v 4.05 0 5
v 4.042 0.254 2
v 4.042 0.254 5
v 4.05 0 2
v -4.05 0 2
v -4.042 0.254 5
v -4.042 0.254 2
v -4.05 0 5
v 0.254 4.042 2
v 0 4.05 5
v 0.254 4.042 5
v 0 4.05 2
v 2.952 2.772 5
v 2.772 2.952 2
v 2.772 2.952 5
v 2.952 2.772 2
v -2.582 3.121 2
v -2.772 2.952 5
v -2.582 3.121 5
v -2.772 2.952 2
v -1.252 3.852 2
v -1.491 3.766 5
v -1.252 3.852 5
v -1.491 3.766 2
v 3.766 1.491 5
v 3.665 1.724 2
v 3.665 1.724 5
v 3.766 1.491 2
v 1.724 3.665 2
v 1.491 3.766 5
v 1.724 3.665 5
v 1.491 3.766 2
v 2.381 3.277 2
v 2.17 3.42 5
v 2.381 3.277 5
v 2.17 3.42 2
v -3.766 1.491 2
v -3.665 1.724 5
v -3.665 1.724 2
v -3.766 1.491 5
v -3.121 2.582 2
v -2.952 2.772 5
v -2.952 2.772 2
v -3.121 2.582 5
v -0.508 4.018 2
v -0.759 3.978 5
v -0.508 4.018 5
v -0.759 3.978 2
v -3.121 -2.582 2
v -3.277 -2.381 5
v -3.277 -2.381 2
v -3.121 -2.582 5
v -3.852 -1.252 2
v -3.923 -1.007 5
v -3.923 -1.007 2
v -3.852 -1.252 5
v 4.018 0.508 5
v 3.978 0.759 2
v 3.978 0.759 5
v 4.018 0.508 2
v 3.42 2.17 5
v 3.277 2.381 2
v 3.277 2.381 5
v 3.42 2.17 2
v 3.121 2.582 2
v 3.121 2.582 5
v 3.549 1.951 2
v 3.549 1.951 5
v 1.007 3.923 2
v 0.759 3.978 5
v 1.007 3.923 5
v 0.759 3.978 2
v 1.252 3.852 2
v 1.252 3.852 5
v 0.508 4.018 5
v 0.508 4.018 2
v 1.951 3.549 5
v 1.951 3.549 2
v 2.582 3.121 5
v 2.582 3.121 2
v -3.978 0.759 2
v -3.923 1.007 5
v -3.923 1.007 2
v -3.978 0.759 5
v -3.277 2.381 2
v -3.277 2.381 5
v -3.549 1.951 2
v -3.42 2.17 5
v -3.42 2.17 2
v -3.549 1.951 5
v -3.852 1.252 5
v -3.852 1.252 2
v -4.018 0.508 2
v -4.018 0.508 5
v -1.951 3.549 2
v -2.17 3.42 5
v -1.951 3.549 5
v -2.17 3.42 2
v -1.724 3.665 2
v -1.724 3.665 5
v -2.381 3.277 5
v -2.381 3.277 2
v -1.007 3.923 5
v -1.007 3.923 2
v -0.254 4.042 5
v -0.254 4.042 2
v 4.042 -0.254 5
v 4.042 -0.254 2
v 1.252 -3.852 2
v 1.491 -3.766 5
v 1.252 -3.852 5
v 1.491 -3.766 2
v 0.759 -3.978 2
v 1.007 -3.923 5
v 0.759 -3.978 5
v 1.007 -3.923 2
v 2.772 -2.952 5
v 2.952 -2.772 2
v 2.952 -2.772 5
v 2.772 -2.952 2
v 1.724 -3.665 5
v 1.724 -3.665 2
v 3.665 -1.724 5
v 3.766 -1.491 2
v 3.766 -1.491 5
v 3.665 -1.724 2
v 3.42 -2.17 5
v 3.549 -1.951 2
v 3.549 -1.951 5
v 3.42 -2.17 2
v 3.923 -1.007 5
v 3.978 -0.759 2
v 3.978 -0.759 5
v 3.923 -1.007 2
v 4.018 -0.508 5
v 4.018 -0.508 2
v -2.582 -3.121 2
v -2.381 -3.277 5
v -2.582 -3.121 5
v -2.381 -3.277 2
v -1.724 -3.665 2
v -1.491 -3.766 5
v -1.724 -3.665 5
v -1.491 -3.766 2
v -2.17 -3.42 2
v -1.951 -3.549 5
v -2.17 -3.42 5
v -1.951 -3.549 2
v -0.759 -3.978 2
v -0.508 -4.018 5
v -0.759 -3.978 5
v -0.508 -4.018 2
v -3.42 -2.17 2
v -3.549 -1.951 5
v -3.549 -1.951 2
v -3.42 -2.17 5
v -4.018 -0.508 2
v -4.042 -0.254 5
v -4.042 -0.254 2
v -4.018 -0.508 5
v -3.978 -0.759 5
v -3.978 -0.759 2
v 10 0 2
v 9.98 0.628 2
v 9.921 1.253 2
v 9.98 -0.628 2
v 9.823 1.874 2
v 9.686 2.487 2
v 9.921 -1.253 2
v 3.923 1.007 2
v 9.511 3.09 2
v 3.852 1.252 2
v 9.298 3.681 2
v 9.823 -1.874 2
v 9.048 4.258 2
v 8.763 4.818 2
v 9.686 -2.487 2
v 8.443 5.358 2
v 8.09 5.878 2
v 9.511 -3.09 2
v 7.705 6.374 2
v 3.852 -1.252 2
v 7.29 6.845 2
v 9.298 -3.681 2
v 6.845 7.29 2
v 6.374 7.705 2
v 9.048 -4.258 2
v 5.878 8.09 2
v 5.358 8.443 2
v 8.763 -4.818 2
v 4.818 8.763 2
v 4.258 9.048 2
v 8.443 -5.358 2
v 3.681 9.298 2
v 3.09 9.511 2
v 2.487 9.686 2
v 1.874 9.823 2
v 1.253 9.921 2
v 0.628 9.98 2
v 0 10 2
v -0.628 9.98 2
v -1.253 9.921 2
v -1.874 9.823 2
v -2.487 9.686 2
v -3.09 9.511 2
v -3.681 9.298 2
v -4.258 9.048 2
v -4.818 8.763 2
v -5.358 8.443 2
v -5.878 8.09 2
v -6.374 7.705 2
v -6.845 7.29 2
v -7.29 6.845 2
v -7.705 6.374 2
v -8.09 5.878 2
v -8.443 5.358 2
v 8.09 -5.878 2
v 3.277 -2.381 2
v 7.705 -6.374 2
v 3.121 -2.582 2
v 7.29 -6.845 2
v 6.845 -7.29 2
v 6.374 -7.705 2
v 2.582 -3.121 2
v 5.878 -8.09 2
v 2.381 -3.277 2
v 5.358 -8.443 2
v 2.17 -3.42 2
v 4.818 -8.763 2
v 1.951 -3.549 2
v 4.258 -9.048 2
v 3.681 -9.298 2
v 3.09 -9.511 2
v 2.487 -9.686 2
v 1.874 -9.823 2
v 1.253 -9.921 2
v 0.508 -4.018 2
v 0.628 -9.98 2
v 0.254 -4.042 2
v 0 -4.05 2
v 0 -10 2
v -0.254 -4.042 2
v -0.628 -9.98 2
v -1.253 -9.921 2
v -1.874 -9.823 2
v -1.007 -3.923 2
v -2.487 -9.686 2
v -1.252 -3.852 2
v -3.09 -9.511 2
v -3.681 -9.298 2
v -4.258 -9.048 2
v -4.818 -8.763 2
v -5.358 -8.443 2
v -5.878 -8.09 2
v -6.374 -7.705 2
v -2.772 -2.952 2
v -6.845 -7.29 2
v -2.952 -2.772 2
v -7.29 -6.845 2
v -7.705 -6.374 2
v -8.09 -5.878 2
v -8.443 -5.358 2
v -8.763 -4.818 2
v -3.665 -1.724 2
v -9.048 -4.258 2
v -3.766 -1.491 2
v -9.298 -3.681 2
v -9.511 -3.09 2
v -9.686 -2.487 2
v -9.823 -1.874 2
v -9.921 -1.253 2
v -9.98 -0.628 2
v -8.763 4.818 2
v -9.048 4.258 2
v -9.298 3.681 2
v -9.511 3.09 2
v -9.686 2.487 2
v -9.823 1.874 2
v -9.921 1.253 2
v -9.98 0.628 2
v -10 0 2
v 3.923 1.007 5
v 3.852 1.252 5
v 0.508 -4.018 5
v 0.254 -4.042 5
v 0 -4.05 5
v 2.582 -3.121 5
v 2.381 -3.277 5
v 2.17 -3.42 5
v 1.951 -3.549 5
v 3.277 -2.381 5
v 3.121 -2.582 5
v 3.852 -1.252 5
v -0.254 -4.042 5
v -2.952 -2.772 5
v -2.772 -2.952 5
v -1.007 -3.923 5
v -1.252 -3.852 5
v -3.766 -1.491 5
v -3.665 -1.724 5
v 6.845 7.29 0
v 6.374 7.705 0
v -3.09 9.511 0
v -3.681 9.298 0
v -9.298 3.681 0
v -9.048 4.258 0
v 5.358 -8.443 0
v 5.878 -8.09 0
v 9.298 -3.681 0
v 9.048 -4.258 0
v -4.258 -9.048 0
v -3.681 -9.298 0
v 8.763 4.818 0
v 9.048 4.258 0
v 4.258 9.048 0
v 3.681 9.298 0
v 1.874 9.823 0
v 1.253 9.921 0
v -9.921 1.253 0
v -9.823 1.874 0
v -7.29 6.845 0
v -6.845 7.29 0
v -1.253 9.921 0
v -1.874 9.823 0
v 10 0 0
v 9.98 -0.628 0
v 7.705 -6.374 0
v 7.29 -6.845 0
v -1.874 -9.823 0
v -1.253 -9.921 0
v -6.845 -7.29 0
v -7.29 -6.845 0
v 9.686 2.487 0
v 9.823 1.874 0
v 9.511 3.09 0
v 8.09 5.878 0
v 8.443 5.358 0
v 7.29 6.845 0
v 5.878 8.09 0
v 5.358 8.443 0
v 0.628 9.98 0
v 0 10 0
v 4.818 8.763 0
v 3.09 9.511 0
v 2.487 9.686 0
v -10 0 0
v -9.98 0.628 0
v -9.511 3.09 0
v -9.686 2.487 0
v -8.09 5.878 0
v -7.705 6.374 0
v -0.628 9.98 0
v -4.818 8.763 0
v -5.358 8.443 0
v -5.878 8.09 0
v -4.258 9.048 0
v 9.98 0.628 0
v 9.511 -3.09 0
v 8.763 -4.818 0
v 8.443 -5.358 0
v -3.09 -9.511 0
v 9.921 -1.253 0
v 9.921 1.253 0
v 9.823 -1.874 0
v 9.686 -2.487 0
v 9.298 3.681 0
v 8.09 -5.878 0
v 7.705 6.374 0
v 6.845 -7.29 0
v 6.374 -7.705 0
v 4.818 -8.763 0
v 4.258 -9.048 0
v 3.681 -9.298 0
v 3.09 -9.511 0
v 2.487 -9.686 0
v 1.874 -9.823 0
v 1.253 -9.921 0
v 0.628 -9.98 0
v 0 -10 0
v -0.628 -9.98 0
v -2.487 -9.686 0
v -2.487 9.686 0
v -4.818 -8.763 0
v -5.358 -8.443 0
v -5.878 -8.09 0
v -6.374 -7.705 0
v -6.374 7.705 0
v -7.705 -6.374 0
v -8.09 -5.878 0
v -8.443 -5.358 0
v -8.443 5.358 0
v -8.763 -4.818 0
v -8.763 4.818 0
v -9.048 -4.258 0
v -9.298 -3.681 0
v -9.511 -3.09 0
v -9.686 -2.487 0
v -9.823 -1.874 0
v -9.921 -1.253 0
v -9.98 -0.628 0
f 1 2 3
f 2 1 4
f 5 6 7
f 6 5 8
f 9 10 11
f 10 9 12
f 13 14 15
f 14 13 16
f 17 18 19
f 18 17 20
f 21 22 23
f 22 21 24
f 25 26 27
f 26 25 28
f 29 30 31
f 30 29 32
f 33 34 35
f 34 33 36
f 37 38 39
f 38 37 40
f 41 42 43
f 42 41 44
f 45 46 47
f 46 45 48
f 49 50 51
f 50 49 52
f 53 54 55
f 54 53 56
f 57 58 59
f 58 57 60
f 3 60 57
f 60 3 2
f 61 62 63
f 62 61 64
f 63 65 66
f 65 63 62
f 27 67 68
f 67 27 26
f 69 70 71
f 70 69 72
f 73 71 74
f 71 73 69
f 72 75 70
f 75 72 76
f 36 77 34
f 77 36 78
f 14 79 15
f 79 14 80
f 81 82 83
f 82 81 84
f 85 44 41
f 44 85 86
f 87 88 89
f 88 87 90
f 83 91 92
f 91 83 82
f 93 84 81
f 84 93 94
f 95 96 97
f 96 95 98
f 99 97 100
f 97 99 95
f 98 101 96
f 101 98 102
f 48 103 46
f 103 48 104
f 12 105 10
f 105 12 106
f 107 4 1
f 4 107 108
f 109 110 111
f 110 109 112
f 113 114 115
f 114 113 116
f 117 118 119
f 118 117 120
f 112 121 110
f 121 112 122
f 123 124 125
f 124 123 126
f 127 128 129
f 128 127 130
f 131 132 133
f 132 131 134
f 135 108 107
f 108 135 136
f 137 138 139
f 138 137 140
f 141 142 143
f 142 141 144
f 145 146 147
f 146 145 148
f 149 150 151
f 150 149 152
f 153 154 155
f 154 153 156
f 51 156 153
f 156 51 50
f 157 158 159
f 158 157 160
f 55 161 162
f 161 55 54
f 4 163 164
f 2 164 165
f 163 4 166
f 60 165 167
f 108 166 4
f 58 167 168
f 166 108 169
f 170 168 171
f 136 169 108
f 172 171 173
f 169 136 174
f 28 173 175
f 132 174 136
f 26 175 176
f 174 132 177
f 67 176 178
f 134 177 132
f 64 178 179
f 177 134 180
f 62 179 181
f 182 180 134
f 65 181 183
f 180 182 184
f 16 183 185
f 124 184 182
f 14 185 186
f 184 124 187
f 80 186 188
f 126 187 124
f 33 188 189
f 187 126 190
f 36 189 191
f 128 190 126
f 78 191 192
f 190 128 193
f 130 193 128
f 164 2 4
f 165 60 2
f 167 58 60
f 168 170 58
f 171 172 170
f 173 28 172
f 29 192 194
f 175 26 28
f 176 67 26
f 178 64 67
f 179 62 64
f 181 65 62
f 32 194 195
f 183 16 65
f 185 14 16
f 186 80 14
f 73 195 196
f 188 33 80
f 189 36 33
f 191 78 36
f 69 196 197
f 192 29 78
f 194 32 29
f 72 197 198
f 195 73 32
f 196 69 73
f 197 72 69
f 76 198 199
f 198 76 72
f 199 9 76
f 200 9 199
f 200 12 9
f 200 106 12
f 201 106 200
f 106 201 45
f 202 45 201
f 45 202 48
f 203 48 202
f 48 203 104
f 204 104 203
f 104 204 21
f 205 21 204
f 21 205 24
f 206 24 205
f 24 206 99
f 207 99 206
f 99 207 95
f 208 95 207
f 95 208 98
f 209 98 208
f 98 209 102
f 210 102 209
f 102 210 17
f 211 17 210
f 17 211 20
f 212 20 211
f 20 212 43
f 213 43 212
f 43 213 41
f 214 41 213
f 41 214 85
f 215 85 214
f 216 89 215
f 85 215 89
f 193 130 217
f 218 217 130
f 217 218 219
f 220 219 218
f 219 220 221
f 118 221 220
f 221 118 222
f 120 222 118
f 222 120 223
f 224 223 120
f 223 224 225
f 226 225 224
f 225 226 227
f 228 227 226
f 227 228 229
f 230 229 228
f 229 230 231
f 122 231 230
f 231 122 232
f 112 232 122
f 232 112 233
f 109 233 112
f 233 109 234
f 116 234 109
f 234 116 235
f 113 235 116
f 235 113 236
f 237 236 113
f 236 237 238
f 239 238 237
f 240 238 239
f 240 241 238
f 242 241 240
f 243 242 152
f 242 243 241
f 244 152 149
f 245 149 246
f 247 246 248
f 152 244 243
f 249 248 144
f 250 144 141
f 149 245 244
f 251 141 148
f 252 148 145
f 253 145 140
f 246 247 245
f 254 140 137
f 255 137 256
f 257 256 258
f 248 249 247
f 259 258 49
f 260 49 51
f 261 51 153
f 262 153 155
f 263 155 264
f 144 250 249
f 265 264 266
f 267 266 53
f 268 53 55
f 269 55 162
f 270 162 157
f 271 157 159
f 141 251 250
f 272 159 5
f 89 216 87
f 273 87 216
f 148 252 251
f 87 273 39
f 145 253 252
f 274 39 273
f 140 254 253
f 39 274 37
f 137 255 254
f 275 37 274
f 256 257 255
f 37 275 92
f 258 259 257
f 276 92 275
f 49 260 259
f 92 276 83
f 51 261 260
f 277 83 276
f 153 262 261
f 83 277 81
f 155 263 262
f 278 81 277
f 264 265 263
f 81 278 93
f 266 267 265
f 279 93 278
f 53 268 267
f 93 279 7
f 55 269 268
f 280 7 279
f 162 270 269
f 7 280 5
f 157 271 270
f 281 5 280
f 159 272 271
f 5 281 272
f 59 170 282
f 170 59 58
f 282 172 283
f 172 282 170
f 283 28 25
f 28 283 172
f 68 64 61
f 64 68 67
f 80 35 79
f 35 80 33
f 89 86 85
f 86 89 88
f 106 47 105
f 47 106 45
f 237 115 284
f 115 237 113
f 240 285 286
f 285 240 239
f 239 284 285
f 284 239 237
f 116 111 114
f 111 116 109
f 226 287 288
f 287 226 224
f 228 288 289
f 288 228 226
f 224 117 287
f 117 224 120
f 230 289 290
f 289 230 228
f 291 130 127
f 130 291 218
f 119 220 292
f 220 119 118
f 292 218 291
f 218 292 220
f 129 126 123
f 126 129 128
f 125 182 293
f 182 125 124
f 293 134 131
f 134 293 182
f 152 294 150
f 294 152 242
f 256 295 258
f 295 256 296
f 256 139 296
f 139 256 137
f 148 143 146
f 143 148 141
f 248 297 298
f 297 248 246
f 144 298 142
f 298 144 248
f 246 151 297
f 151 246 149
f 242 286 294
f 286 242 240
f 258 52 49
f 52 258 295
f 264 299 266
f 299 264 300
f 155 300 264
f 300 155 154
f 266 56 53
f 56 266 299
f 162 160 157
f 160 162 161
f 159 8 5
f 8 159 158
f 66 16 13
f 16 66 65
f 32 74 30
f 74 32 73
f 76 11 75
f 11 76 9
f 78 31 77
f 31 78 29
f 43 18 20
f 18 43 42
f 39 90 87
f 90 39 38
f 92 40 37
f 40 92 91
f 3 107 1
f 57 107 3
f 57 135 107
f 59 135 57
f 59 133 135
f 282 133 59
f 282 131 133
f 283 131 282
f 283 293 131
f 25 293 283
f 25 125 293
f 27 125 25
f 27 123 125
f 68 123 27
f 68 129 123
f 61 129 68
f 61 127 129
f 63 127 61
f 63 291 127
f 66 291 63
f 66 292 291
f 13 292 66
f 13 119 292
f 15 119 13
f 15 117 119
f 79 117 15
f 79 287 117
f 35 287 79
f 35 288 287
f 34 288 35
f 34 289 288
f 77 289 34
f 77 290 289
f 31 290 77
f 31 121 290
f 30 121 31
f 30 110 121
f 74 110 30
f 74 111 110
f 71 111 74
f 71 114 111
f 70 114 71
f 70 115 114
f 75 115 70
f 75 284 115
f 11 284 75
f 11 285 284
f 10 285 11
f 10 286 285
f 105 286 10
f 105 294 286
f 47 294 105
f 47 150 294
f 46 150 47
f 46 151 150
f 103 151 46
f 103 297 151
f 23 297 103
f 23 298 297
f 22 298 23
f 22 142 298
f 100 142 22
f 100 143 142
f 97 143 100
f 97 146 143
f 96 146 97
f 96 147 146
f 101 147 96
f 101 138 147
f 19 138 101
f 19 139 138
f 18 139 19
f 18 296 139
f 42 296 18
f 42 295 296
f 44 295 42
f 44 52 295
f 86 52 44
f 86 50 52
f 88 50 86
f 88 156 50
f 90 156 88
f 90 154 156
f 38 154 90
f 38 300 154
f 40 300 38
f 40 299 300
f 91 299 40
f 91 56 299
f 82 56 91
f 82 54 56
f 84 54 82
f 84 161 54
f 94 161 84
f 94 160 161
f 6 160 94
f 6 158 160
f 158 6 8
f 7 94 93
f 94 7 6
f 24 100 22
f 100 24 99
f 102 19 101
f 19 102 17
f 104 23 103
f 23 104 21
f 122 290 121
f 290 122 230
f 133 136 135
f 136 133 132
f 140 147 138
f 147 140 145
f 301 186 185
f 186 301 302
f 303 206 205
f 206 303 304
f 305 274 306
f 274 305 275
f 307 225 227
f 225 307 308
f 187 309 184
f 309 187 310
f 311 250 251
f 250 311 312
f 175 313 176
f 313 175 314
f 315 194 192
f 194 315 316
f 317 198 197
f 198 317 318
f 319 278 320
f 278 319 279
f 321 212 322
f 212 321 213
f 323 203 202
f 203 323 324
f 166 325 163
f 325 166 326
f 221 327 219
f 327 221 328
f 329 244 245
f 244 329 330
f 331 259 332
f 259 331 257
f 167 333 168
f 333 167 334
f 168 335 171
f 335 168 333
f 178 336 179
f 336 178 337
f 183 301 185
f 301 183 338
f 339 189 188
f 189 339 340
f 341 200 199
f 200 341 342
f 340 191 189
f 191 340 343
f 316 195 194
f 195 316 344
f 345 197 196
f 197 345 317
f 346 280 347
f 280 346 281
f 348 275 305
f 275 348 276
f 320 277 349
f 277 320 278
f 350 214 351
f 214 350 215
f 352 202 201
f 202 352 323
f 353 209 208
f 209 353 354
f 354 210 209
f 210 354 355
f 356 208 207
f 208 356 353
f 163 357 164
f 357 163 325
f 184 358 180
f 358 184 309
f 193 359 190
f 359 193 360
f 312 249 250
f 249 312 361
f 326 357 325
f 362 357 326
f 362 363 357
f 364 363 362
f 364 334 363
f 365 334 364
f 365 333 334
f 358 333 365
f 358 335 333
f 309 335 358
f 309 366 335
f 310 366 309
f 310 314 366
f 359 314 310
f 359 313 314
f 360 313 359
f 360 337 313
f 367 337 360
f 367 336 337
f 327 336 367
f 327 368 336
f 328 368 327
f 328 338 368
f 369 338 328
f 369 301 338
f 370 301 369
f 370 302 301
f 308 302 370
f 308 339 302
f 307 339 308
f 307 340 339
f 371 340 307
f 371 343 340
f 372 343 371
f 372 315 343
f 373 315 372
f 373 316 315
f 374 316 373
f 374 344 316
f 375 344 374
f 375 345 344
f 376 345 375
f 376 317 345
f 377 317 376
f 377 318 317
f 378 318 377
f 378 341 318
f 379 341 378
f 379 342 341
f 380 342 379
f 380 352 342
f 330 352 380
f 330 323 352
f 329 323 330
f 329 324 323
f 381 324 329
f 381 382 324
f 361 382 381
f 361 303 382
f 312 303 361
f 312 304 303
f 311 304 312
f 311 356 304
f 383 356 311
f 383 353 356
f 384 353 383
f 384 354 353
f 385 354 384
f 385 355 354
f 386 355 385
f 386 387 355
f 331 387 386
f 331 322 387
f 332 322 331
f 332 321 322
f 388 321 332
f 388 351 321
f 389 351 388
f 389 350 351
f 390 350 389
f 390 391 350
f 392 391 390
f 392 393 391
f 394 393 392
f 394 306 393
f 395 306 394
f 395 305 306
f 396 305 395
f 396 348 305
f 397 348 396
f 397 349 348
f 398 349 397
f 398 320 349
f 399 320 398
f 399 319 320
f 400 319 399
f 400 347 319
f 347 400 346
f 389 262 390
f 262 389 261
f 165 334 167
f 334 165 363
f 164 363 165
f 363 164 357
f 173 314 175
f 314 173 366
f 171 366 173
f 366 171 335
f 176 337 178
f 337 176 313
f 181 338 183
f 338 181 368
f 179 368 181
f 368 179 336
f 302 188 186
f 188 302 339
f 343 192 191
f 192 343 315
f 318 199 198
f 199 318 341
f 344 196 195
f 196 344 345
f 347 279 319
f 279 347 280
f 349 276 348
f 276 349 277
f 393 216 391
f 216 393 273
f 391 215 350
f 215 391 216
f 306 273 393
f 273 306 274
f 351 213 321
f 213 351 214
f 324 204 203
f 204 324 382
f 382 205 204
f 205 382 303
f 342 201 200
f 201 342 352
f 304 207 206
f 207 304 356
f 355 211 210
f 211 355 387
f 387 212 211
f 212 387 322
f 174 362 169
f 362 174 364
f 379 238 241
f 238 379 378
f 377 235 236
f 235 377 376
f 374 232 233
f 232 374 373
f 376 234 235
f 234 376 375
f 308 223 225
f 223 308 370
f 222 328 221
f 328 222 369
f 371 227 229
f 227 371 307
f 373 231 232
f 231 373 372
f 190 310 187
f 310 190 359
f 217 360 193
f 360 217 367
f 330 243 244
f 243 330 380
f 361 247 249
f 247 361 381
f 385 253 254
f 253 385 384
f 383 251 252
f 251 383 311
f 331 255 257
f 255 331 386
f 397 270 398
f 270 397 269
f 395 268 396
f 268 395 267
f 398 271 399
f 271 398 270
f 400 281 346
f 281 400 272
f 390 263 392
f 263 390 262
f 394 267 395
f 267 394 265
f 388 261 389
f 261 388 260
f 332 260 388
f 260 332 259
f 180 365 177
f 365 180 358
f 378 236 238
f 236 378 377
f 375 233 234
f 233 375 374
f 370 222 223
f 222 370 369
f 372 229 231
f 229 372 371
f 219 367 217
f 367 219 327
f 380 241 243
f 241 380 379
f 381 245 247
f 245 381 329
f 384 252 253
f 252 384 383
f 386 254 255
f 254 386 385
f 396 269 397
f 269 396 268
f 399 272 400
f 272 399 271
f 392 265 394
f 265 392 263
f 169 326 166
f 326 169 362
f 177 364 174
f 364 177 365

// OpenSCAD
$fn = 100;

translate([0, 0, 2.0])
cylinder(h = 3.0, d = 8.1);
cylinder(h = 2.0, d = 20.0);
